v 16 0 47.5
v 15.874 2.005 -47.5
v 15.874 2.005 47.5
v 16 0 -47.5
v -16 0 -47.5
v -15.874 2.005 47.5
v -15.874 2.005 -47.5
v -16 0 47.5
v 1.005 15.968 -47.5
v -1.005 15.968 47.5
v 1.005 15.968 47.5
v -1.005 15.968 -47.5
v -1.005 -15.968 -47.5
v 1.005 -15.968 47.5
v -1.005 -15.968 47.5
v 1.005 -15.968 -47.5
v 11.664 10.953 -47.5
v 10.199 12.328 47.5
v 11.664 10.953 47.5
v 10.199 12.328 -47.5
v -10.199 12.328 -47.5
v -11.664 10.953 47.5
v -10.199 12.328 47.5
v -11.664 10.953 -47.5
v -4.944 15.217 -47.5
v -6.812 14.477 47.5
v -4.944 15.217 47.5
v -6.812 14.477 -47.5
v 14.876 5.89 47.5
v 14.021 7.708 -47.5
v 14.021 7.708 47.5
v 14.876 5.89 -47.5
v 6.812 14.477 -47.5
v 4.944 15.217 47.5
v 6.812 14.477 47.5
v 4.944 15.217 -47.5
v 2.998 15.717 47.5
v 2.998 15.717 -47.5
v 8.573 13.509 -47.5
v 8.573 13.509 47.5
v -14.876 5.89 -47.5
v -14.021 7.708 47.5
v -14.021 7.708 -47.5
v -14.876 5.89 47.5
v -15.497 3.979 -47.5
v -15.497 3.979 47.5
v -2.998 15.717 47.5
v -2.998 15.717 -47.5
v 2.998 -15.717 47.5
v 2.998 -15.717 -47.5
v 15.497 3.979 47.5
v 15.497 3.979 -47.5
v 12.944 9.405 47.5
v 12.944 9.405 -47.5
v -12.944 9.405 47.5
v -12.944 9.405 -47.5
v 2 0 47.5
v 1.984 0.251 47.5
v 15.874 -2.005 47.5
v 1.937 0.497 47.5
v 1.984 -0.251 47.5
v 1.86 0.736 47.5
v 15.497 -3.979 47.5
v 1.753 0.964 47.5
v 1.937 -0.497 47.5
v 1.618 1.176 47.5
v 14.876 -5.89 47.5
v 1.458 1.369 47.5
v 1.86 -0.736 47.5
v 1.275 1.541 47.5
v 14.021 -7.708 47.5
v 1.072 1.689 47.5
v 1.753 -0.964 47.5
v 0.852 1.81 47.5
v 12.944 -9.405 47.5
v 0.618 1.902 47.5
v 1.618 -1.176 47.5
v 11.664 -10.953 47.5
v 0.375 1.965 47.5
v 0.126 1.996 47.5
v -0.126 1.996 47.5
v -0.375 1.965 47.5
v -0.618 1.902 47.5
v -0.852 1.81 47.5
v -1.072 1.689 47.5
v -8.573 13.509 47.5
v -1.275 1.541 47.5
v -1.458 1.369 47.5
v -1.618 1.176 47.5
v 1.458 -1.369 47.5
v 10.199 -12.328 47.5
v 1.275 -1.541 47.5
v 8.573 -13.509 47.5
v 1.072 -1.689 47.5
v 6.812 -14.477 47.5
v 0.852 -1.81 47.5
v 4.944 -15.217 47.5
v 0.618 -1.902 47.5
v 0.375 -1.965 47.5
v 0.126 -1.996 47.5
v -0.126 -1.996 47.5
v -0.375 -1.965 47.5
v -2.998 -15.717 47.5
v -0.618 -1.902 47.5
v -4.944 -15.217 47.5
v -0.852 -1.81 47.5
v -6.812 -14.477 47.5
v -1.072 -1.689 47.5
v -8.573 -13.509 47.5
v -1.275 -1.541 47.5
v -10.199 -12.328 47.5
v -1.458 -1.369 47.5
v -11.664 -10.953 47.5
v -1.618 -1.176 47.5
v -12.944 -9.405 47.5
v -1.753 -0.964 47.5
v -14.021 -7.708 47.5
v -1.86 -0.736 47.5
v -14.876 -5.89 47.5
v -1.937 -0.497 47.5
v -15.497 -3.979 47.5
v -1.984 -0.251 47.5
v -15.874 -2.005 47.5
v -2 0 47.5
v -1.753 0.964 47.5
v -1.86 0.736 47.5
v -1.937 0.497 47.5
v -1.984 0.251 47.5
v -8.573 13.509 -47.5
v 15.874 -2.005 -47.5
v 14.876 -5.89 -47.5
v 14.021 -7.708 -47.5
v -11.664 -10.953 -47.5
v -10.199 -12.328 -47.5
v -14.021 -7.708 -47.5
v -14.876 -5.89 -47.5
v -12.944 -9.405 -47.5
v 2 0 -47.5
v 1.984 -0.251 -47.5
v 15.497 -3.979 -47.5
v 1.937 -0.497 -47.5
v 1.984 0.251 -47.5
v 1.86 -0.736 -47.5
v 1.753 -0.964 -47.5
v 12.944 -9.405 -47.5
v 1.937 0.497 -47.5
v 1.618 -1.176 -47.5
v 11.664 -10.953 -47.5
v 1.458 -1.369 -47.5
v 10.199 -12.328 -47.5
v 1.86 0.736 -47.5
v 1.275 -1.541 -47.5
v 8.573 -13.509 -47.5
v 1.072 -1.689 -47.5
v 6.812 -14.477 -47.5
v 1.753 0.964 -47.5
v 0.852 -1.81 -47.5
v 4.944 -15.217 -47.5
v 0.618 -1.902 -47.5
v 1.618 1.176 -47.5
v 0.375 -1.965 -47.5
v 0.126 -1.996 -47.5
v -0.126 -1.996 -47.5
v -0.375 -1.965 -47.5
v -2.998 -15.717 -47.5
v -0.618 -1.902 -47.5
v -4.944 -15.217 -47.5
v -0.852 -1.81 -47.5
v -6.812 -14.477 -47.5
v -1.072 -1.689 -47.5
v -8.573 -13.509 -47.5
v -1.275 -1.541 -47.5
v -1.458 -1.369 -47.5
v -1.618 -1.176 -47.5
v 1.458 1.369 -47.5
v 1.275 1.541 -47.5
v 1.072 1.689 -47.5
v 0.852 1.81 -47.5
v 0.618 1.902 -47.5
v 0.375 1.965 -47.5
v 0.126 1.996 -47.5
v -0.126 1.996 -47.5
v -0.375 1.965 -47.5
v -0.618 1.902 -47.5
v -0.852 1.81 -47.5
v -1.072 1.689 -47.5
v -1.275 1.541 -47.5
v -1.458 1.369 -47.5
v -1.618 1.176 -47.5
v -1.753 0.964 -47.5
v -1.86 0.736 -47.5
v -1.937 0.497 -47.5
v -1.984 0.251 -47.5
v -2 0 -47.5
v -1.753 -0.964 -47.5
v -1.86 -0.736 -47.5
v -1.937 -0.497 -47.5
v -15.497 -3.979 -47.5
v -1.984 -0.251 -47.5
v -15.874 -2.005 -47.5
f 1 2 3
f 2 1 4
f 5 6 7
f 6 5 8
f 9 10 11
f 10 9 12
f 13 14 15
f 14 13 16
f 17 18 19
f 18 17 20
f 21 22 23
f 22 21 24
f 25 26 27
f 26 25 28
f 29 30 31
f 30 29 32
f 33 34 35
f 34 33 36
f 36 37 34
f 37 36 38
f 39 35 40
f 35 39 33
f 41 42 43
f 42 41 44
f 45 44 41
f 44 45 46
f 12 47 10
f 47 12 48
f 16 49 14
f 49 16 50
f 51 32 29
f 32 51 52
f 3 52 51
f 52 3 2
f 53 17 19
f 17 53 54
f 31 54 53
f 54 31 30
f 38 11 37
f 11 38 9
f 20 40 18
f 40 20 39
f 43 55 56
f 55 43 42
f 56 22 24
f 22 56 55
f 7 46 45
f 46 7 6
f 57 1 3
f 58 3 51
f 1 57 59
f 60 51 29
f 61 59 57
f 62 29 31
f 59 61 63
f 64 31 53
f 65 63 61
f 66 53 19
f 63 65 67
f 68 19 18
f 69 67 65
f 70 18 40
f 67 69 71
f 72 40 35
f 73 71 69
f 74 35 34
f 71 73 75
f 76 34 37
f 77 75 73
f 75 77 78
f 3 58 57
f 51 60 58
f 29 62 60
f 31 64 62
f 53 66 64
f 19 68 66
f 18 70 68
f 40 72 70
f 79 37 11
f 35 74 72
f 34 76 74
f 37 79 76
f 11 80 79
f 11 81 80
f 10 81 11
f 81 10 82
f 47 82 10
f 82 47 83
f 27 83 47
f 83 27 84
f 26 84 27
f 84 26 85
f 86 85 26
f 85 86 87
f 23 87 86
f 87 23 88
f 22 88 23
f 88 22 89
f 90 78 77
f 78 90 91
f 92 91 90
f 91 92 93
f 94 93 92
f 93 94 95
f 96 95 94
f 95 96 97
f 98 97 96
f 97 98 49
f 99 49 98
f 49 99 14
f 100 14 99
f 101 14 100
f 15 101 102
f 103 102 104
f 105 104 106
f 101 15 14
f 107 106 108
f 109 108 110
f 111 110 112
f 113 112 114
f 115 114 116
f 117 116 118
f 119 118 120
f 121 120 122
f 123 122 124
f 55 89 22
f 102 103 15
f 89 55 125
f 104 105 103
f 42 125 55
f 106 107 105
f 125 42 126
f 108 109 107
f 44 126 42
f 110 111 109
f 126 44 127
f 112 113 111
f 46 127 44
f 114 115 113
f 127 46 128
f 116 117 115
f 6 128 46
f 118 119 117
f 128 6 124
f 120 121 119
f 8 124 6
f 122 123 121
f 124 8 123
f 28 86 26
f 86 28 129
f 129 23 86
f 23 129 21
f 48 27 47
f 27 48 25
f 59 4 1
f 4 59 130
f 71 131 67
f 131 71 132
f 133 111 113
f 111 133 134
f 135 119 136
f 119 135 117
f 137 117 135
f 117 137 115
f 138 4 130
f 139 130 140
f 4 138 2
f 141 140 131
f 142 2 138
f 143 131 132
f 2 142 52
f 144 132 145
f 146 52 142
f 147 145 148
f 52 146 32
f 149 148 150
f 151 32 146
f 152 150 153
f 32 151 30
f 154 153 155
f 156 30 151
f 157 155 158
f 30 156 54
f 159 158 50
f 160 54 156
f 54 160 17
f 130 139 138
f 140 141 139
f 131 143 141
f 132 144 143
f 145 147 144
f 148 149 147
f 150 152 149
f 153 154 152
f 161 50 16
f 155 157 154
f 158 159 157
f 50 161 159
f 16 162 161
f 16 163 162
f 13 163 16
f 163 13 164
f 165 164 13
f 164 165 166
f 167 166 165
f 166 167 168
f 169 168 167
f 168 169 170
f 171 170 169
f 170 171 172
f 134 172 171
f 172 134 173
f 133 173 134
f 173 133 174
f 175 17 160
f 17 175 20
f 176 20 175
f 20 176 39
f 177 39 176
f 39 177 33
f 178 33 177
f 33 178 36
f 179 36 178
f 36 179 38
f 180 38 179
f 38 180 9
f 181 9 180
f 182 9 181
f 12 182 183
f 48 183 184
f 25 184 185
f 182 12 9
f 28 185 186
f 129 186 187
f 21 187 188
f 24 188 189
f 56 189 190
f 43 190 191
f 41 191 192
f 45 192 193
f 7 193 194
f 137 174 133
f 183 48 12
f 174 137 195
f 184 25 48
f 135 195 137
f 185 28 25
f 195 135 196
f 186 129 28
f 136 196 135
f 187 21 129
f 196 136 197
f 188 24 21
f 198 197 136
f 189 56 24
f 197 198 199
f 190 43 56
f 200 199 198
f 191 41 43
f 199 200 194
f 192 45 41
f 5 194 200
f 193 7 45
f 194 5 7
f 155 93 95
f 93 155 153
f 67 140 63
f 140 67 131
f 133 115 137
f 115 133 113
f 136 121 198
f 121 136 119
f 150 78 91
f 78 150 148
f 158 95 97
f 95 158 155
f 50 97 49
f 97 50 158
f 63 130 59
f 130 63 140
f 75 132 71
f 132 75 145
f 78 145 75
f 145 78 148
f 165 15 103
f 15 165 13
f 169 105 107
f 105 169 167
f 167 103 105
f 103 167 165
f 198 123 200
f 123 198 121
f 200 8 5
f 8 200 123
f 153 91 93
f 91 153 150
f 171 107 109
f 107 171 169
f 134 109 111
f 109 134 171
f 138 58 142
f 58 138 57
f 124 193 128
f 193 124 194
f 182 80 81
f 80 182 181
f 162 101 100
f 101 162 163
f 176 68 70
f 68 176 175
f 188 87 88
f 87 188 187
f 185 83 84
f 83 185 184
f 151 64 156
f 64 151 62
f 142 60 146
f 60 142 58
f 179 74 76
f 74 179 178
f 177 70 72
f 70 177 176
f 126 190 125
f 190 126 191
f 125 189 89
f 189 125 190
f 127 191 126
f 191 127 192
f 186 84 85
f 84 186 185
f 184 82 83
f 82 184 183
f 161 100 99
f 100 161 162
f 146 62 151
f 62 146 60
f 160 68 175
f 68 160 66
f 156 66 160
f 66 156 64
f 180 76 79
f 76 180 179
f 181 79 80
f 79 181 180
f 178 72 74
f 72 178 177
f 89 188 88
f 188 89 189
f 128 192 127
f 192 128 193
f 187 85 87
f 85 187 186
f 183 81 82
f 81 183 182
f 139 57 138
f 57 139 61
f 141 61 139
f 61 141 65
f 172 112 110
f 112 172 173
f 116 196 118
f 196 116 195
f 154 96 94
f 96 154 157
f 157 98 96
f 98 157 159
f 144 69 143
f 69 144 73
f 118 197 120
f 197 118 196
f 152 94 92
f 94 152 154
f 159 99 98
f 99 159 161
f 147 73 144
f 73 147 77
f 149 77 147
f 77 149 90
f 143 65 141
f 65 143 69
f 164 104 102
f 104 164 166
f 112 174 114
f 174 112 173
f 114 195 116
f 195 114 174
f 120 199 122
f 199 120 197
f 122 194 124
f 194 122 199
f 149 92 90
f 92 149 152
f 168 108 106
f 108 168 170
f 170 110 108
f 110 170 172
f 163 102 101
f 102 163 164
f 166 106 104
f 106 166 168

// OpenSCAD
$fn = 50;


difference() {
	union() {
		translate(v = [0, 0, -47.5000000000]) {
			cylinder(h = 95, r = 16.0000000000);
		}
	}
	union() {
		translate(v = [0, 0, -100.0000000000]) {
			cylinder(h = 200, r = 2);
		}
	}
}
